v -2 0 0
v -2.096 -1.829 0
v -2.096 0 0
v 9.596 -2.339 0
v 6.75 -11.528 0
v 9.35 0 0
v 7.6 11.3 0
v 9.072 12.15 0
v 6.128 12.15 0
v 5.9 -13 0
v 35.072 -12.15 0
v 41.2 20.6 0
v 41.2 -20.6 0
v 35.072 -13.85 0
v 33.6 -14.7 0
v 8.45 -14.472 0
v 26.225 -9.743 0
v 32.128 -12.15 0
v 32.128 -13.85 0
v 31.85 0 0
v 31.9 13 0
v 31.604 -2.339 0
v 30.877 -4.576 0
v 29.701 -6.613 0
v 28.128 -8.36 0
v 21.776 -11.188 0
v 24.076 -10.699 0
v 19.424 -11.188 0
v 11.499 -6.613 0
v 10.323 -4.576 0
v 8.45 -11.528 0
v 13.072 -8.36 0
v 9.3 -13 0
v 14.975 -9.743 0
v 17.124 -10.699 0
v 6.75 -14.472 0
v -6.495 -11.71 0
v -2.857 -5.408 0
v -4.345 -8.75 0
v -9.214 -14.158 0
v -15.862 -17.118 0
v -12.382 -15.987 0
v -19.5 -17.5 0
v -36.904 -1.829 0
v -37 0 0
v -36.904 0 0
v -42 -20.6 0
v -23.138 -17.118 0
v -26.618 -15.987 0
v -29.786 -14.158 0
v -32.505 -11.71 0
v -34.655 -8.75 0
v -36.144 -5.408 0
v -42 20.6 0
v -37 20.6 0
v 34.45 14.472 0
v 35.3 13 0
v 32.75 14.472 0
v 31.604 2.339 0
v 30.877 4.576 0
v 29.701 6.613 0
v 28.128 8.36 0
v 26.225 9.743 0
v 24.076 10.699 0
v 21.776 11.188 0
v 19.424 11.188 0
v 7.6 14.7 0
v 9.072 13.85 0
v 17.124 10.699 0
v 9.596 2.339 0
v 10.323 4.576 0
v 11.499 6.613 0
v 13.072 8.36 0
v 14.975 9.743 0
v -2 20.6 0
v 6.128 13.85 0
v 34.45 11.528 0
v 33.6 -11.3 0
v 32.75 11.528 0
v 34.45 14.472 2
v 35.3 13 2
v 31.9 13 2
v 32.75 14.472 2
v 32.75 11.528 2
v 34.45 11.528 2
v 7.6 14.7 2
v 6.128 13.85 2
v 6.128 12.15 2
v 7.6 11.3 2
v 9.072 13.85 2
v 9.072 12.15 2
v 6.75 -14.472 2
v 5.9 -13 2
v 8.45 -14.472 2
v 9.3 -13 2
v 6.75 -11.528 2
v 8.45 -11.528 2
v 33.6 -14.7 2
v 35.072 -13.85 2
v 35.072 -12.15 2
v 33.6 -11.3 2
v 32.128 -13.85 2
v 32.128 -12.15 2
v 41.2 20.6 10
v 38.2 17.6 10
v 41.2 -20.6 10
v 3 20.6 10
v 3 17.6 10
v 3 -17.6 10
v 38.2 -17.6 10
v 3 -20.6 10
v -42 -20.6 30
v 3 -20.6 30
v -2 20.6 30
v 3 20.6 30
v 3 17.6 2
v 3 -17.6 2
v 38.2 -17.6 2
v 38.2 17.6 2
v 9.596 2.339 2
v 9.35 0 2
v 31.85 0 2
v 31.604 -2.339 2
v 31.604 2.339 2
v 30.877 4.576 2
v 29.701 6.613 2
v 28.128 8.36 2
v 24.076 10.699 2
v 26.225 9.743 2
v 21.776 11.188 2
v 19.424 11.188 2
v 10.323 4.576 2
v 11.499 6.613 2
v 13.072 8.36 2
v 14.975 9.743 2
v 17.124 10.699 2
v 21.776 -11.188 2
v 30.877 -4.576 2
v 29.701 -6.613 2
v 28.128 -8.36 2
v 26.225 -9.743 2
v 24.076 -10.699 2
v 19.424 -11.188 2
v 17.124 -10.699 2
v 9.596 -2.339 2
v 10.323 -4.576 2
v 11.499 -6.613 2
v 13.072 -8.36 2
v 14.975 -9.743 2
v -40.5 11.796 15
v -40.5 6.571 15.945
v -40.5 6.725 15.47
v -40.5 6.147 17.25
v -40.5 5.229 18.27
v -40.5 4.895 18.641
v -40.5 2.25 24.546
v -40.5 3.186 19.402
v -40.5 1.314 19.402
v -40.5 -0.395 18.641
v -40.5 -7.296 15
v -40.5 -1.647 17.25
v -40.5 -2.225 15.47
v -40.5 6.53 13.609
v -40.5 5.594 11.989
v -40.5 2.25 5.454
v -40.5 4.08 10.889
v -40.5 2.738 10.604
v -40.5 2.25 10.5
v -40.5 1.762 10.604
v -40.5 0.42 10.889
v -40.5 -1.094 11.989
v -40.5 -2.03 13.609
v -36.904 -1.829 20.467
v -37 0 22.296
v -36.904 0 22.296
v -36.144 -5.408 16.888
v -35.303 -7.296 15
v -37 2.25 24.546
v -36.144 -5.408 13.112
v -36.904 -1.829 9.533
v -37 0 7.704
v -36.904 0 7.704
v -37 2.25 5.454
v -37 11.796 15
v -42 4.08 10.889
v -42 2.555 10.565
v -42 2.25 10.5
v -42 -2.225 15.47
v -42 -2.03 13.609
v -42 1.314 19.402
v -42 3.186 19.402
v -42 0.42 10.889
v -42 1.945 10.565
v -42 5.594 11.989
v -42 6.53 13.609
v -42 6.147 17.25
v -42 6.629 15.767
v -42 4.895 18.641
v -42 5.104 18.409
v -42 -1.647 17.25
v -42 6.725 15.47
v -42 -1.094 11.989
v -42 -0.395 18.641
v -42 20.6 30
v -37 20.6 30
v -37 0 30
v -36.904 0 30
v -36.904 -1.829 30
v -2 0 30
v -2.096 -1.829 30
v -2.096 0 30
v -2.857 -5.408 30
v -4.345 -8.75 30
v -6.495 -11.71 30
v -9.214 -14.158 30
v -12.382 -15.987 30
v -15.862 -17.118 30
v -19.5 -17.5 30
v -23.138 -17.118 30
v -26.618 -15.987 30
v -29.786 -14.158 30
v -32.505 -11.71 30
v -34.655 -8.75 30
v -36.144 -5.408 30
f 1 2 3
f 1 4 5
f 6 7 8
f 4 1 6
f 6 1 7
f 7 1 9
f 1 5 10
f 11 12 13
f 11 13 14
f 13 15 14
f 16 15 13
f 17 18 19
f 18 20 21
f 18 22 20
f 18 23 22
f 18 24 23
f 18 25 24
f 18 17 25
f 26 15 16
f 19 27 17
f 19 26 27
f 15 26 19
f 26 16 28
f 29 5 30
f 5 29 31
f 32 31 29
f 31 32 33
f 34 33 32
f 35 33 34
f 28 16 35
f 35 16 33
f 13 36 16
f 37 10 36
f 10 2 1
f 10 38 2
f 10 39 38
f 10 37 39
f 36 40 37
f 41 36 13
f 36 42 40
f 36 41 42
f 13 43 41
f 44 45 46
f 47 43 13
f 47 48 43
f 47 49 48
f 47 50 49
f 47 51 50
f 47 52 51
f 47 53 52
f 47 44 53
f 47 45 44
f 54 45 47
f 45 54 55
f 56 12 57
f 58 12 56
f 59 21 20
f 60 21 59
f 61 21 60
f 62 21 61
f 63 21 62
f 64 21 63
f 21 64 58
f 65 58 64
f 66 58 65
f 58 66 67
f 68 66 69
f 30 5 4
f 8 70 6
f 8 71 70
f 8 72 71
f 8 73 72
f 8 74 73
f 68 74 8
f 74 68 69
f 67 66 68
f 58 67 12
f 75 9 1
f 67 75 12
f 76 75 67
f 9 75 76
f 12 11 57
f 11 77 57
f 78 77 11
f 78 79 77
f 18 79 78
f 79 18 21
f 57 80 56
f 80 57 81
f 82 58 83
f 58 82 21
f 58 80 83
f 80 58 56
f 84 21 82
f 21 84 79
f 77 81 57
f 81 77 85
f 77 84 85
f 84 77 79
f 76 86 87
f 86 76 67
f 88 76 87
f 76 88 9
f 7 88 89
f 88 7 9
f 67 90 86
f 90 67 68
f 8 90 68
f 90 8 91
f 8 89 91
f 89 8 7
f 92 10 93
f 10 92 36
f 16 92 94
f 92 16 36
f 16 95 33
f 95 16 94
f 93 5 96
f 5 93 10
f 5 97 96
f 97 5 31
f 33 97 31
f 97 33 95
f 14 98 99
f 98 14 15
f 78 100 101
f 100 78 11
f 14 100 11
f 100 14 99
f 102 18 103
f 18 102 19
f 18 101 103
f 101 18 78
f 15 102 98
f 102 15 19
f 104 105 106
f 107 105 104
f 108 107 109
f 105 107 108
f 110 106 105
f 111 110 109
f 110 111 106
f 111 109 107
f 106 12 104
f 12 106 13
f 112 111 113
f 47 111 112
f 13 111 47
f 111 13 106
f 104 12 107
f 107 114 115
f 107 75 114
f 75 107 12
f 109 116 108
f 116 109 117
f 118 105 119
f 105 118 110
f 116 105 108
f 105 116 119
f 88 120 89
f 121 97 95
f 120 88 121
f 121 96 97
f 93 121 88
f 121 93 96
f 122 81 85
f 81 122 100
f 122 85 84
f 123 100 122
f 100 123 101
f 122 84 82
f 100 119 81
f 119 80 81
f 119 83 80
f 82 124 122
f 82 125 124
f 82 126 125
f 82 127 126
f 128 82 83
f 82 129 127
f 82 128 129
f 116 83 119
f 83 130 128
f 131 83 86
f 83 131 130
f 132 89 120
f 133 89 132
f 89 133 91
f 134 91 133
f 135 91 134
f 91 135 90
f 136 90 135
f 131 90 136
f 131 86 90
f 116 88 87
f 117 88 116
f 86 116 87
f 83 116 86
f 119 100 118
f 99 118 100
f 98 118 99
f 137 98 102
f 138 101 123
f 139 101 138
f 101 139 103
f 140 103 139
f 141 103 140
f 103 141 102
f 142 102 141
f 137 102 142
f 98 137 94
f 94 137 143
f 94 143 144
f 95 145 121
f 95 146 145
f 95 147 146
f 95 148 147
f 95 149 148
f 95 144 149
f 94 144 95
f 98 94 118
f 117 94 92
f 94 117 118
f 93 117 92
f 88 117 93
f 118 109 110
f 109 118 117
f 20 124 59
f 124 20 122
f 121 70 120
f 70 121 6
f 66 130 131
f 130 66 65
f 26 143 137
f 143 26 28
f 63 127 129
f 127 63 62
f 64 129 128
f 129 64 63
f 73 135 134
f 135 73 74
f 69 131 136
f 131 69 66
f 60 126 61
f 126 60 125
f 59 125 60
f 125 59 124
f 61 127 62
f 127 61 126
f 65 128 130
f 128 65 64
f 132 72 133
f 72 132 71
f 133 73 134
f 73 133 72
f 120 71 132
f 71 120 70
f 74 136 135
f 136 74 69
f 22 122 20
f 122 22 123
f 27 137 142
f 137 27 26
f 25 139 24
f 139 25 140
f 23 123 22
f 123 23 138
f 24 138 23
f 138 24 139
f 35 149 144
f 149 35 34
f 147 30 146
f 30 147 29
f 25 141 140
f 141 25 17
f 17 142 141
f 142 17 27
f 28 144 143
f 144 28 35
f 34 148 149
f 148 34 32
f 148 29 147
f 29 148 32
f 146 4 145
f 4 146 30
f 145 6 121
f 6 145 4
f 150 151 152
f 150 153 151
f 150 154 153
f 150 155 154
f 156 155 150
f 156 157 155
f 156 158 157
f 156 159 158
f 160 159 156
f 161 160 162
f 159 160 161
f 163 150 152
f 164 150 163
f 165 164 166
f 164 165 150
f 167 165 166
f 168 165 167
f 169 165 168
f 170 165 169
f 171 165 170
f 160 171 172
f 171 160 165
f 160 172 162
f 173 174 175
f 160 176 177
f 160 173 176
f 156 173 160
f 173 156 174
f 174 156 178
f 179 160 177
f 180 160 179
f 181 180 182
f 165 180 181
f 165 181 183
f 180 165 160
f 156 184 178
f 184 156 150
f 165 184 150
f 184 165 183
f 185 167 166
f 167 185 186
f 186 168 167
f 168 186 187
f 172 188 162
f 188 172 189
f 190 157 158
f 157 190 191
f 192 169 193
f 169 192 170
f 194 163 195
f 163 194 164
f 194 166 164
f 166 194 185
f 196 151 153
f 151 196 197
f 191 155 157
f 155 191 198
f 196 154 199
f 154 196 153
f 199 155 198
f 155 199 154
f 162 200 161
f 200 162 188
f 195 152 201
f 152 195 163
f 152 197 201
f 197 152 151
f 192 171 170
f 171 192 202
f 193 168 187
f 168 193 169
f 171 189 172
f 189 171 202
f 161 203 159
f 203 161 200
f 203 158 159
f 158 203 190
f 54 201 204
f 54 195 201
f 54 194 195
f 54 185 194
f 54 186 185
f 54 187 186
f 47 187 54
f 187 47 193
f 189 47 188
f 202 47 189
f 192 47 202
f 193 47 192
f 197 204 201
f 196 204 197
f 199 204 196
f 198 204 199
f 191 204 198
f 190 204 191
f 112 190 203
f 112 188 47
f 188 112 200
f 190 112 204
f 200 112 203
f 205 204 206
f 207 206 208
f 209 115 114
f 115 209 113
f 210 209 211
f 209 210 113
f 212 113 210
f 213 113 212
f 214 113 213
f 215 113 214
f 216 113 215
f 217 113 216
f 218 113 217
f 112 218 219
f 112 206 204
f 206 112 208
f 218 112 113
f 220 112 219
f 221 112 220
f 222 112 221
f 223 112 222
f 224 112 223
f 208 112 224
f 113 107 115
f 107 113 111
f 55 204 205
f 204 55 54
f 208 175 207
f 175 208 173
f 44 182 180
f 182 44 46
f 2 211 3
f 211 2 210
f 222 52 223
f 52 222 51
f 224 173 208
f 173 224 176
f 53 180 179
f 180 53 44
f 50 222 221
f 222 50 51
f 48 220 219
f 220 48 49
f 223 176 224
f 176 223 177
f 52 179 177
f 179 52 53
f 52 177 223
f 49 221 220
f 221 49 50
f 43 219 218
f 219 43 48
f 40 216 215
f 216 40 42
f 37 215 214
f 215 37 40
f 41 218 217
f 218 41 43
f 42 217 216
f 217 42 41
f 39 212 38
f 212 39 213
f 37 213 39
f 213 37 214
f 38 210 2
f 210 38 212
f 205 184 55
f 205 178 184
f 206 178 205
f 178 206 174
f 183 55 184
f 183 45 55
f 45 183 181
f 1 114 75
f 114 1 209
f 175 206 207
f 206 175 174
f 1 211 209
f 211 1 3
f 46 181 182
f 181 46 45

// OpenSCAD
//nema mount
nema_width      = 35.2;
nema_screw_dist = 26;
nema_screw_dia  = 3.4;
nema_indent_dia = 22.5;
plate_thickness = 3;
wall_height     = 10;

plate_width     = nema_width+(plate_thickness*2);
clamp_height    = 30; 
tube_dia        = 35;
clamp_wall      = 5;
clamp_length     = plate_width;
clamp_width = tube_dia+ (clamp_wall*2) ;
nut_width = 13.5;
nut_depth = 3.5;
bolt_dia  = 9;



union(){
    //nema plate
    translate([plate_width/2,0,5]){
        difference(){
            
            cube([plate_width, plate_width, wall_height],center=true);
            
            translate([0,0,2]){
                cube([nema_width, nema_width,wall_height],center=true);
            }
            
            cylinder(r=nema_indent_dia/2,h=wall_height, center=true);
            
            
            for(angle = [0:90:300]){
                rotate(a = angle){
                    translate([nema_screw_dist/2,nema_screw_dist/2,0]){
                        cylinder(r=nema_screw_dia/2,h=wall_height, center=true);
                    }
                }
            }
        }
    }

    
    //clamp
    translate([plate_thickness-(clamp_width/2), 0, clamp_height/2]){
        
        difference(){
            
            cube([clamp_width, clamp_length, clamp_height], center=true);
            
            rotate([0, 0, 90]){
                cylinder(r=tube_dia/2, h=plate_width, center=true);
            }
            translate([0, tube_dia/2, 0]){
                cube([tube_dia, tube_dia, clamp_height], center=true);
            }
            
        
            translate([ -(tube_dia/2
        ), bolt_dia/4,0]){
            rotate([45,0,0]){
                cube([nut_depth*2, nut_width,  nut_width], center=true);
            }
           rotate([0,90,0]){     
                cylinder(r=bolt_dia/2,h=clamp_wall*3, center=true);
            
            }
        }
            
        }
    }




}
